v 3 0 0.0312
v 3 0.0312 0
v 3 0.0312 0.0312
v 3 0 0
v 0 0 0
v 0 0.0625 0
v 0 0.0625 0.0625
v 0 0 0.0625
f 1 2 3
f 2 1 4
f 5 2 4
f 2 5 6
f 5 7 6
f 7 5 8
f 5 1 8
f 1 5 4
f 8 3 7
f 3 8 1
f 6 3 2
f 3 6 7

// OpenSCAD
// file: ../../../constraints.scad
//####################################
// Math-Magik LPP - Design Constraints
// (c) 2021 by Roie R. Black
//====================================

// AMA Rules for event 208
//------------------------------------

max_overall_length = 20;
max_projected_wing_span = 18;
max_bearing_to_rear_hook = 10;
max_wing_chord = 5;
max_stab_span = 12;
max_stab_chord = 4;
max_prop_diameter = 12;
// file: MMlib/double_taper_spar.scad
//######################################################################
// double_taper_spar.scad - creates a spar tapered on two sides
// (c) 2021 - Roie R. Black
// docs: https://rblack.github.io/math-magik/magik/double_taper_spar.html

module double_taper_spar(l=5, y1=1, y2=0.5, z1=1, z2=0.5, debug=false) {
  // calc taper angles
  yang = atan2(z1-z2,l);
  zang = atan2(y1-y2,l);


  difference() {
    // z taper
    difference() {
      cube([l,y1,z1]);
      translate([0,-y1/2, z1])
        rotate([0,yang,0])
          if (debug) {
            #cube([l+1, 2*y1, z1]);
          } else {
            cube([l+1, 2*y1, z1]);
          }
    // y taper
    translate([0,y1, -z1/2])
      rotate([0,0,-zang])
        if (debug) {
          #cube([l+1, y1, 2*z1]);
        } else {
          cube([l+1, y1, 2*z1]);
        }
    }
  }
}

double_taper_spar();
// file: ../../stab_data.scad
//#####################################
// stab.data
// (c) 2021 by Roie R. Black
//=====================================
include <../constraints.scad>

// center section dimensions
center_span = 6;
spar_size = 1/16;
rib_chord = max_stab_chord - 2 * spar_size;
rib_camber = 2;
num_center_ribs = 3;

// tip section dimensions
tip_span = (max_stab_span - center_span)/2;
tip_radius = 1.5;
tip_le_span = tip_span - tip_radius;
tip_rib_chord = max_stab_chord - tip_radius - spar_size;
// main file
//#####################################
// te.scad = wing center section
// (c) 2021 by Roie R. Black
//=====================================
include <../../stab_data.scad>
use <MMlib/double_taper_spar.scad>

s1 = spar_size;
s2 = spar_size/2;


module trailing_edge() {
		double_taper_spar(tip_span,s1,s2,s1,s2);
}

//====================================
// display this shape
trailing_edge();
